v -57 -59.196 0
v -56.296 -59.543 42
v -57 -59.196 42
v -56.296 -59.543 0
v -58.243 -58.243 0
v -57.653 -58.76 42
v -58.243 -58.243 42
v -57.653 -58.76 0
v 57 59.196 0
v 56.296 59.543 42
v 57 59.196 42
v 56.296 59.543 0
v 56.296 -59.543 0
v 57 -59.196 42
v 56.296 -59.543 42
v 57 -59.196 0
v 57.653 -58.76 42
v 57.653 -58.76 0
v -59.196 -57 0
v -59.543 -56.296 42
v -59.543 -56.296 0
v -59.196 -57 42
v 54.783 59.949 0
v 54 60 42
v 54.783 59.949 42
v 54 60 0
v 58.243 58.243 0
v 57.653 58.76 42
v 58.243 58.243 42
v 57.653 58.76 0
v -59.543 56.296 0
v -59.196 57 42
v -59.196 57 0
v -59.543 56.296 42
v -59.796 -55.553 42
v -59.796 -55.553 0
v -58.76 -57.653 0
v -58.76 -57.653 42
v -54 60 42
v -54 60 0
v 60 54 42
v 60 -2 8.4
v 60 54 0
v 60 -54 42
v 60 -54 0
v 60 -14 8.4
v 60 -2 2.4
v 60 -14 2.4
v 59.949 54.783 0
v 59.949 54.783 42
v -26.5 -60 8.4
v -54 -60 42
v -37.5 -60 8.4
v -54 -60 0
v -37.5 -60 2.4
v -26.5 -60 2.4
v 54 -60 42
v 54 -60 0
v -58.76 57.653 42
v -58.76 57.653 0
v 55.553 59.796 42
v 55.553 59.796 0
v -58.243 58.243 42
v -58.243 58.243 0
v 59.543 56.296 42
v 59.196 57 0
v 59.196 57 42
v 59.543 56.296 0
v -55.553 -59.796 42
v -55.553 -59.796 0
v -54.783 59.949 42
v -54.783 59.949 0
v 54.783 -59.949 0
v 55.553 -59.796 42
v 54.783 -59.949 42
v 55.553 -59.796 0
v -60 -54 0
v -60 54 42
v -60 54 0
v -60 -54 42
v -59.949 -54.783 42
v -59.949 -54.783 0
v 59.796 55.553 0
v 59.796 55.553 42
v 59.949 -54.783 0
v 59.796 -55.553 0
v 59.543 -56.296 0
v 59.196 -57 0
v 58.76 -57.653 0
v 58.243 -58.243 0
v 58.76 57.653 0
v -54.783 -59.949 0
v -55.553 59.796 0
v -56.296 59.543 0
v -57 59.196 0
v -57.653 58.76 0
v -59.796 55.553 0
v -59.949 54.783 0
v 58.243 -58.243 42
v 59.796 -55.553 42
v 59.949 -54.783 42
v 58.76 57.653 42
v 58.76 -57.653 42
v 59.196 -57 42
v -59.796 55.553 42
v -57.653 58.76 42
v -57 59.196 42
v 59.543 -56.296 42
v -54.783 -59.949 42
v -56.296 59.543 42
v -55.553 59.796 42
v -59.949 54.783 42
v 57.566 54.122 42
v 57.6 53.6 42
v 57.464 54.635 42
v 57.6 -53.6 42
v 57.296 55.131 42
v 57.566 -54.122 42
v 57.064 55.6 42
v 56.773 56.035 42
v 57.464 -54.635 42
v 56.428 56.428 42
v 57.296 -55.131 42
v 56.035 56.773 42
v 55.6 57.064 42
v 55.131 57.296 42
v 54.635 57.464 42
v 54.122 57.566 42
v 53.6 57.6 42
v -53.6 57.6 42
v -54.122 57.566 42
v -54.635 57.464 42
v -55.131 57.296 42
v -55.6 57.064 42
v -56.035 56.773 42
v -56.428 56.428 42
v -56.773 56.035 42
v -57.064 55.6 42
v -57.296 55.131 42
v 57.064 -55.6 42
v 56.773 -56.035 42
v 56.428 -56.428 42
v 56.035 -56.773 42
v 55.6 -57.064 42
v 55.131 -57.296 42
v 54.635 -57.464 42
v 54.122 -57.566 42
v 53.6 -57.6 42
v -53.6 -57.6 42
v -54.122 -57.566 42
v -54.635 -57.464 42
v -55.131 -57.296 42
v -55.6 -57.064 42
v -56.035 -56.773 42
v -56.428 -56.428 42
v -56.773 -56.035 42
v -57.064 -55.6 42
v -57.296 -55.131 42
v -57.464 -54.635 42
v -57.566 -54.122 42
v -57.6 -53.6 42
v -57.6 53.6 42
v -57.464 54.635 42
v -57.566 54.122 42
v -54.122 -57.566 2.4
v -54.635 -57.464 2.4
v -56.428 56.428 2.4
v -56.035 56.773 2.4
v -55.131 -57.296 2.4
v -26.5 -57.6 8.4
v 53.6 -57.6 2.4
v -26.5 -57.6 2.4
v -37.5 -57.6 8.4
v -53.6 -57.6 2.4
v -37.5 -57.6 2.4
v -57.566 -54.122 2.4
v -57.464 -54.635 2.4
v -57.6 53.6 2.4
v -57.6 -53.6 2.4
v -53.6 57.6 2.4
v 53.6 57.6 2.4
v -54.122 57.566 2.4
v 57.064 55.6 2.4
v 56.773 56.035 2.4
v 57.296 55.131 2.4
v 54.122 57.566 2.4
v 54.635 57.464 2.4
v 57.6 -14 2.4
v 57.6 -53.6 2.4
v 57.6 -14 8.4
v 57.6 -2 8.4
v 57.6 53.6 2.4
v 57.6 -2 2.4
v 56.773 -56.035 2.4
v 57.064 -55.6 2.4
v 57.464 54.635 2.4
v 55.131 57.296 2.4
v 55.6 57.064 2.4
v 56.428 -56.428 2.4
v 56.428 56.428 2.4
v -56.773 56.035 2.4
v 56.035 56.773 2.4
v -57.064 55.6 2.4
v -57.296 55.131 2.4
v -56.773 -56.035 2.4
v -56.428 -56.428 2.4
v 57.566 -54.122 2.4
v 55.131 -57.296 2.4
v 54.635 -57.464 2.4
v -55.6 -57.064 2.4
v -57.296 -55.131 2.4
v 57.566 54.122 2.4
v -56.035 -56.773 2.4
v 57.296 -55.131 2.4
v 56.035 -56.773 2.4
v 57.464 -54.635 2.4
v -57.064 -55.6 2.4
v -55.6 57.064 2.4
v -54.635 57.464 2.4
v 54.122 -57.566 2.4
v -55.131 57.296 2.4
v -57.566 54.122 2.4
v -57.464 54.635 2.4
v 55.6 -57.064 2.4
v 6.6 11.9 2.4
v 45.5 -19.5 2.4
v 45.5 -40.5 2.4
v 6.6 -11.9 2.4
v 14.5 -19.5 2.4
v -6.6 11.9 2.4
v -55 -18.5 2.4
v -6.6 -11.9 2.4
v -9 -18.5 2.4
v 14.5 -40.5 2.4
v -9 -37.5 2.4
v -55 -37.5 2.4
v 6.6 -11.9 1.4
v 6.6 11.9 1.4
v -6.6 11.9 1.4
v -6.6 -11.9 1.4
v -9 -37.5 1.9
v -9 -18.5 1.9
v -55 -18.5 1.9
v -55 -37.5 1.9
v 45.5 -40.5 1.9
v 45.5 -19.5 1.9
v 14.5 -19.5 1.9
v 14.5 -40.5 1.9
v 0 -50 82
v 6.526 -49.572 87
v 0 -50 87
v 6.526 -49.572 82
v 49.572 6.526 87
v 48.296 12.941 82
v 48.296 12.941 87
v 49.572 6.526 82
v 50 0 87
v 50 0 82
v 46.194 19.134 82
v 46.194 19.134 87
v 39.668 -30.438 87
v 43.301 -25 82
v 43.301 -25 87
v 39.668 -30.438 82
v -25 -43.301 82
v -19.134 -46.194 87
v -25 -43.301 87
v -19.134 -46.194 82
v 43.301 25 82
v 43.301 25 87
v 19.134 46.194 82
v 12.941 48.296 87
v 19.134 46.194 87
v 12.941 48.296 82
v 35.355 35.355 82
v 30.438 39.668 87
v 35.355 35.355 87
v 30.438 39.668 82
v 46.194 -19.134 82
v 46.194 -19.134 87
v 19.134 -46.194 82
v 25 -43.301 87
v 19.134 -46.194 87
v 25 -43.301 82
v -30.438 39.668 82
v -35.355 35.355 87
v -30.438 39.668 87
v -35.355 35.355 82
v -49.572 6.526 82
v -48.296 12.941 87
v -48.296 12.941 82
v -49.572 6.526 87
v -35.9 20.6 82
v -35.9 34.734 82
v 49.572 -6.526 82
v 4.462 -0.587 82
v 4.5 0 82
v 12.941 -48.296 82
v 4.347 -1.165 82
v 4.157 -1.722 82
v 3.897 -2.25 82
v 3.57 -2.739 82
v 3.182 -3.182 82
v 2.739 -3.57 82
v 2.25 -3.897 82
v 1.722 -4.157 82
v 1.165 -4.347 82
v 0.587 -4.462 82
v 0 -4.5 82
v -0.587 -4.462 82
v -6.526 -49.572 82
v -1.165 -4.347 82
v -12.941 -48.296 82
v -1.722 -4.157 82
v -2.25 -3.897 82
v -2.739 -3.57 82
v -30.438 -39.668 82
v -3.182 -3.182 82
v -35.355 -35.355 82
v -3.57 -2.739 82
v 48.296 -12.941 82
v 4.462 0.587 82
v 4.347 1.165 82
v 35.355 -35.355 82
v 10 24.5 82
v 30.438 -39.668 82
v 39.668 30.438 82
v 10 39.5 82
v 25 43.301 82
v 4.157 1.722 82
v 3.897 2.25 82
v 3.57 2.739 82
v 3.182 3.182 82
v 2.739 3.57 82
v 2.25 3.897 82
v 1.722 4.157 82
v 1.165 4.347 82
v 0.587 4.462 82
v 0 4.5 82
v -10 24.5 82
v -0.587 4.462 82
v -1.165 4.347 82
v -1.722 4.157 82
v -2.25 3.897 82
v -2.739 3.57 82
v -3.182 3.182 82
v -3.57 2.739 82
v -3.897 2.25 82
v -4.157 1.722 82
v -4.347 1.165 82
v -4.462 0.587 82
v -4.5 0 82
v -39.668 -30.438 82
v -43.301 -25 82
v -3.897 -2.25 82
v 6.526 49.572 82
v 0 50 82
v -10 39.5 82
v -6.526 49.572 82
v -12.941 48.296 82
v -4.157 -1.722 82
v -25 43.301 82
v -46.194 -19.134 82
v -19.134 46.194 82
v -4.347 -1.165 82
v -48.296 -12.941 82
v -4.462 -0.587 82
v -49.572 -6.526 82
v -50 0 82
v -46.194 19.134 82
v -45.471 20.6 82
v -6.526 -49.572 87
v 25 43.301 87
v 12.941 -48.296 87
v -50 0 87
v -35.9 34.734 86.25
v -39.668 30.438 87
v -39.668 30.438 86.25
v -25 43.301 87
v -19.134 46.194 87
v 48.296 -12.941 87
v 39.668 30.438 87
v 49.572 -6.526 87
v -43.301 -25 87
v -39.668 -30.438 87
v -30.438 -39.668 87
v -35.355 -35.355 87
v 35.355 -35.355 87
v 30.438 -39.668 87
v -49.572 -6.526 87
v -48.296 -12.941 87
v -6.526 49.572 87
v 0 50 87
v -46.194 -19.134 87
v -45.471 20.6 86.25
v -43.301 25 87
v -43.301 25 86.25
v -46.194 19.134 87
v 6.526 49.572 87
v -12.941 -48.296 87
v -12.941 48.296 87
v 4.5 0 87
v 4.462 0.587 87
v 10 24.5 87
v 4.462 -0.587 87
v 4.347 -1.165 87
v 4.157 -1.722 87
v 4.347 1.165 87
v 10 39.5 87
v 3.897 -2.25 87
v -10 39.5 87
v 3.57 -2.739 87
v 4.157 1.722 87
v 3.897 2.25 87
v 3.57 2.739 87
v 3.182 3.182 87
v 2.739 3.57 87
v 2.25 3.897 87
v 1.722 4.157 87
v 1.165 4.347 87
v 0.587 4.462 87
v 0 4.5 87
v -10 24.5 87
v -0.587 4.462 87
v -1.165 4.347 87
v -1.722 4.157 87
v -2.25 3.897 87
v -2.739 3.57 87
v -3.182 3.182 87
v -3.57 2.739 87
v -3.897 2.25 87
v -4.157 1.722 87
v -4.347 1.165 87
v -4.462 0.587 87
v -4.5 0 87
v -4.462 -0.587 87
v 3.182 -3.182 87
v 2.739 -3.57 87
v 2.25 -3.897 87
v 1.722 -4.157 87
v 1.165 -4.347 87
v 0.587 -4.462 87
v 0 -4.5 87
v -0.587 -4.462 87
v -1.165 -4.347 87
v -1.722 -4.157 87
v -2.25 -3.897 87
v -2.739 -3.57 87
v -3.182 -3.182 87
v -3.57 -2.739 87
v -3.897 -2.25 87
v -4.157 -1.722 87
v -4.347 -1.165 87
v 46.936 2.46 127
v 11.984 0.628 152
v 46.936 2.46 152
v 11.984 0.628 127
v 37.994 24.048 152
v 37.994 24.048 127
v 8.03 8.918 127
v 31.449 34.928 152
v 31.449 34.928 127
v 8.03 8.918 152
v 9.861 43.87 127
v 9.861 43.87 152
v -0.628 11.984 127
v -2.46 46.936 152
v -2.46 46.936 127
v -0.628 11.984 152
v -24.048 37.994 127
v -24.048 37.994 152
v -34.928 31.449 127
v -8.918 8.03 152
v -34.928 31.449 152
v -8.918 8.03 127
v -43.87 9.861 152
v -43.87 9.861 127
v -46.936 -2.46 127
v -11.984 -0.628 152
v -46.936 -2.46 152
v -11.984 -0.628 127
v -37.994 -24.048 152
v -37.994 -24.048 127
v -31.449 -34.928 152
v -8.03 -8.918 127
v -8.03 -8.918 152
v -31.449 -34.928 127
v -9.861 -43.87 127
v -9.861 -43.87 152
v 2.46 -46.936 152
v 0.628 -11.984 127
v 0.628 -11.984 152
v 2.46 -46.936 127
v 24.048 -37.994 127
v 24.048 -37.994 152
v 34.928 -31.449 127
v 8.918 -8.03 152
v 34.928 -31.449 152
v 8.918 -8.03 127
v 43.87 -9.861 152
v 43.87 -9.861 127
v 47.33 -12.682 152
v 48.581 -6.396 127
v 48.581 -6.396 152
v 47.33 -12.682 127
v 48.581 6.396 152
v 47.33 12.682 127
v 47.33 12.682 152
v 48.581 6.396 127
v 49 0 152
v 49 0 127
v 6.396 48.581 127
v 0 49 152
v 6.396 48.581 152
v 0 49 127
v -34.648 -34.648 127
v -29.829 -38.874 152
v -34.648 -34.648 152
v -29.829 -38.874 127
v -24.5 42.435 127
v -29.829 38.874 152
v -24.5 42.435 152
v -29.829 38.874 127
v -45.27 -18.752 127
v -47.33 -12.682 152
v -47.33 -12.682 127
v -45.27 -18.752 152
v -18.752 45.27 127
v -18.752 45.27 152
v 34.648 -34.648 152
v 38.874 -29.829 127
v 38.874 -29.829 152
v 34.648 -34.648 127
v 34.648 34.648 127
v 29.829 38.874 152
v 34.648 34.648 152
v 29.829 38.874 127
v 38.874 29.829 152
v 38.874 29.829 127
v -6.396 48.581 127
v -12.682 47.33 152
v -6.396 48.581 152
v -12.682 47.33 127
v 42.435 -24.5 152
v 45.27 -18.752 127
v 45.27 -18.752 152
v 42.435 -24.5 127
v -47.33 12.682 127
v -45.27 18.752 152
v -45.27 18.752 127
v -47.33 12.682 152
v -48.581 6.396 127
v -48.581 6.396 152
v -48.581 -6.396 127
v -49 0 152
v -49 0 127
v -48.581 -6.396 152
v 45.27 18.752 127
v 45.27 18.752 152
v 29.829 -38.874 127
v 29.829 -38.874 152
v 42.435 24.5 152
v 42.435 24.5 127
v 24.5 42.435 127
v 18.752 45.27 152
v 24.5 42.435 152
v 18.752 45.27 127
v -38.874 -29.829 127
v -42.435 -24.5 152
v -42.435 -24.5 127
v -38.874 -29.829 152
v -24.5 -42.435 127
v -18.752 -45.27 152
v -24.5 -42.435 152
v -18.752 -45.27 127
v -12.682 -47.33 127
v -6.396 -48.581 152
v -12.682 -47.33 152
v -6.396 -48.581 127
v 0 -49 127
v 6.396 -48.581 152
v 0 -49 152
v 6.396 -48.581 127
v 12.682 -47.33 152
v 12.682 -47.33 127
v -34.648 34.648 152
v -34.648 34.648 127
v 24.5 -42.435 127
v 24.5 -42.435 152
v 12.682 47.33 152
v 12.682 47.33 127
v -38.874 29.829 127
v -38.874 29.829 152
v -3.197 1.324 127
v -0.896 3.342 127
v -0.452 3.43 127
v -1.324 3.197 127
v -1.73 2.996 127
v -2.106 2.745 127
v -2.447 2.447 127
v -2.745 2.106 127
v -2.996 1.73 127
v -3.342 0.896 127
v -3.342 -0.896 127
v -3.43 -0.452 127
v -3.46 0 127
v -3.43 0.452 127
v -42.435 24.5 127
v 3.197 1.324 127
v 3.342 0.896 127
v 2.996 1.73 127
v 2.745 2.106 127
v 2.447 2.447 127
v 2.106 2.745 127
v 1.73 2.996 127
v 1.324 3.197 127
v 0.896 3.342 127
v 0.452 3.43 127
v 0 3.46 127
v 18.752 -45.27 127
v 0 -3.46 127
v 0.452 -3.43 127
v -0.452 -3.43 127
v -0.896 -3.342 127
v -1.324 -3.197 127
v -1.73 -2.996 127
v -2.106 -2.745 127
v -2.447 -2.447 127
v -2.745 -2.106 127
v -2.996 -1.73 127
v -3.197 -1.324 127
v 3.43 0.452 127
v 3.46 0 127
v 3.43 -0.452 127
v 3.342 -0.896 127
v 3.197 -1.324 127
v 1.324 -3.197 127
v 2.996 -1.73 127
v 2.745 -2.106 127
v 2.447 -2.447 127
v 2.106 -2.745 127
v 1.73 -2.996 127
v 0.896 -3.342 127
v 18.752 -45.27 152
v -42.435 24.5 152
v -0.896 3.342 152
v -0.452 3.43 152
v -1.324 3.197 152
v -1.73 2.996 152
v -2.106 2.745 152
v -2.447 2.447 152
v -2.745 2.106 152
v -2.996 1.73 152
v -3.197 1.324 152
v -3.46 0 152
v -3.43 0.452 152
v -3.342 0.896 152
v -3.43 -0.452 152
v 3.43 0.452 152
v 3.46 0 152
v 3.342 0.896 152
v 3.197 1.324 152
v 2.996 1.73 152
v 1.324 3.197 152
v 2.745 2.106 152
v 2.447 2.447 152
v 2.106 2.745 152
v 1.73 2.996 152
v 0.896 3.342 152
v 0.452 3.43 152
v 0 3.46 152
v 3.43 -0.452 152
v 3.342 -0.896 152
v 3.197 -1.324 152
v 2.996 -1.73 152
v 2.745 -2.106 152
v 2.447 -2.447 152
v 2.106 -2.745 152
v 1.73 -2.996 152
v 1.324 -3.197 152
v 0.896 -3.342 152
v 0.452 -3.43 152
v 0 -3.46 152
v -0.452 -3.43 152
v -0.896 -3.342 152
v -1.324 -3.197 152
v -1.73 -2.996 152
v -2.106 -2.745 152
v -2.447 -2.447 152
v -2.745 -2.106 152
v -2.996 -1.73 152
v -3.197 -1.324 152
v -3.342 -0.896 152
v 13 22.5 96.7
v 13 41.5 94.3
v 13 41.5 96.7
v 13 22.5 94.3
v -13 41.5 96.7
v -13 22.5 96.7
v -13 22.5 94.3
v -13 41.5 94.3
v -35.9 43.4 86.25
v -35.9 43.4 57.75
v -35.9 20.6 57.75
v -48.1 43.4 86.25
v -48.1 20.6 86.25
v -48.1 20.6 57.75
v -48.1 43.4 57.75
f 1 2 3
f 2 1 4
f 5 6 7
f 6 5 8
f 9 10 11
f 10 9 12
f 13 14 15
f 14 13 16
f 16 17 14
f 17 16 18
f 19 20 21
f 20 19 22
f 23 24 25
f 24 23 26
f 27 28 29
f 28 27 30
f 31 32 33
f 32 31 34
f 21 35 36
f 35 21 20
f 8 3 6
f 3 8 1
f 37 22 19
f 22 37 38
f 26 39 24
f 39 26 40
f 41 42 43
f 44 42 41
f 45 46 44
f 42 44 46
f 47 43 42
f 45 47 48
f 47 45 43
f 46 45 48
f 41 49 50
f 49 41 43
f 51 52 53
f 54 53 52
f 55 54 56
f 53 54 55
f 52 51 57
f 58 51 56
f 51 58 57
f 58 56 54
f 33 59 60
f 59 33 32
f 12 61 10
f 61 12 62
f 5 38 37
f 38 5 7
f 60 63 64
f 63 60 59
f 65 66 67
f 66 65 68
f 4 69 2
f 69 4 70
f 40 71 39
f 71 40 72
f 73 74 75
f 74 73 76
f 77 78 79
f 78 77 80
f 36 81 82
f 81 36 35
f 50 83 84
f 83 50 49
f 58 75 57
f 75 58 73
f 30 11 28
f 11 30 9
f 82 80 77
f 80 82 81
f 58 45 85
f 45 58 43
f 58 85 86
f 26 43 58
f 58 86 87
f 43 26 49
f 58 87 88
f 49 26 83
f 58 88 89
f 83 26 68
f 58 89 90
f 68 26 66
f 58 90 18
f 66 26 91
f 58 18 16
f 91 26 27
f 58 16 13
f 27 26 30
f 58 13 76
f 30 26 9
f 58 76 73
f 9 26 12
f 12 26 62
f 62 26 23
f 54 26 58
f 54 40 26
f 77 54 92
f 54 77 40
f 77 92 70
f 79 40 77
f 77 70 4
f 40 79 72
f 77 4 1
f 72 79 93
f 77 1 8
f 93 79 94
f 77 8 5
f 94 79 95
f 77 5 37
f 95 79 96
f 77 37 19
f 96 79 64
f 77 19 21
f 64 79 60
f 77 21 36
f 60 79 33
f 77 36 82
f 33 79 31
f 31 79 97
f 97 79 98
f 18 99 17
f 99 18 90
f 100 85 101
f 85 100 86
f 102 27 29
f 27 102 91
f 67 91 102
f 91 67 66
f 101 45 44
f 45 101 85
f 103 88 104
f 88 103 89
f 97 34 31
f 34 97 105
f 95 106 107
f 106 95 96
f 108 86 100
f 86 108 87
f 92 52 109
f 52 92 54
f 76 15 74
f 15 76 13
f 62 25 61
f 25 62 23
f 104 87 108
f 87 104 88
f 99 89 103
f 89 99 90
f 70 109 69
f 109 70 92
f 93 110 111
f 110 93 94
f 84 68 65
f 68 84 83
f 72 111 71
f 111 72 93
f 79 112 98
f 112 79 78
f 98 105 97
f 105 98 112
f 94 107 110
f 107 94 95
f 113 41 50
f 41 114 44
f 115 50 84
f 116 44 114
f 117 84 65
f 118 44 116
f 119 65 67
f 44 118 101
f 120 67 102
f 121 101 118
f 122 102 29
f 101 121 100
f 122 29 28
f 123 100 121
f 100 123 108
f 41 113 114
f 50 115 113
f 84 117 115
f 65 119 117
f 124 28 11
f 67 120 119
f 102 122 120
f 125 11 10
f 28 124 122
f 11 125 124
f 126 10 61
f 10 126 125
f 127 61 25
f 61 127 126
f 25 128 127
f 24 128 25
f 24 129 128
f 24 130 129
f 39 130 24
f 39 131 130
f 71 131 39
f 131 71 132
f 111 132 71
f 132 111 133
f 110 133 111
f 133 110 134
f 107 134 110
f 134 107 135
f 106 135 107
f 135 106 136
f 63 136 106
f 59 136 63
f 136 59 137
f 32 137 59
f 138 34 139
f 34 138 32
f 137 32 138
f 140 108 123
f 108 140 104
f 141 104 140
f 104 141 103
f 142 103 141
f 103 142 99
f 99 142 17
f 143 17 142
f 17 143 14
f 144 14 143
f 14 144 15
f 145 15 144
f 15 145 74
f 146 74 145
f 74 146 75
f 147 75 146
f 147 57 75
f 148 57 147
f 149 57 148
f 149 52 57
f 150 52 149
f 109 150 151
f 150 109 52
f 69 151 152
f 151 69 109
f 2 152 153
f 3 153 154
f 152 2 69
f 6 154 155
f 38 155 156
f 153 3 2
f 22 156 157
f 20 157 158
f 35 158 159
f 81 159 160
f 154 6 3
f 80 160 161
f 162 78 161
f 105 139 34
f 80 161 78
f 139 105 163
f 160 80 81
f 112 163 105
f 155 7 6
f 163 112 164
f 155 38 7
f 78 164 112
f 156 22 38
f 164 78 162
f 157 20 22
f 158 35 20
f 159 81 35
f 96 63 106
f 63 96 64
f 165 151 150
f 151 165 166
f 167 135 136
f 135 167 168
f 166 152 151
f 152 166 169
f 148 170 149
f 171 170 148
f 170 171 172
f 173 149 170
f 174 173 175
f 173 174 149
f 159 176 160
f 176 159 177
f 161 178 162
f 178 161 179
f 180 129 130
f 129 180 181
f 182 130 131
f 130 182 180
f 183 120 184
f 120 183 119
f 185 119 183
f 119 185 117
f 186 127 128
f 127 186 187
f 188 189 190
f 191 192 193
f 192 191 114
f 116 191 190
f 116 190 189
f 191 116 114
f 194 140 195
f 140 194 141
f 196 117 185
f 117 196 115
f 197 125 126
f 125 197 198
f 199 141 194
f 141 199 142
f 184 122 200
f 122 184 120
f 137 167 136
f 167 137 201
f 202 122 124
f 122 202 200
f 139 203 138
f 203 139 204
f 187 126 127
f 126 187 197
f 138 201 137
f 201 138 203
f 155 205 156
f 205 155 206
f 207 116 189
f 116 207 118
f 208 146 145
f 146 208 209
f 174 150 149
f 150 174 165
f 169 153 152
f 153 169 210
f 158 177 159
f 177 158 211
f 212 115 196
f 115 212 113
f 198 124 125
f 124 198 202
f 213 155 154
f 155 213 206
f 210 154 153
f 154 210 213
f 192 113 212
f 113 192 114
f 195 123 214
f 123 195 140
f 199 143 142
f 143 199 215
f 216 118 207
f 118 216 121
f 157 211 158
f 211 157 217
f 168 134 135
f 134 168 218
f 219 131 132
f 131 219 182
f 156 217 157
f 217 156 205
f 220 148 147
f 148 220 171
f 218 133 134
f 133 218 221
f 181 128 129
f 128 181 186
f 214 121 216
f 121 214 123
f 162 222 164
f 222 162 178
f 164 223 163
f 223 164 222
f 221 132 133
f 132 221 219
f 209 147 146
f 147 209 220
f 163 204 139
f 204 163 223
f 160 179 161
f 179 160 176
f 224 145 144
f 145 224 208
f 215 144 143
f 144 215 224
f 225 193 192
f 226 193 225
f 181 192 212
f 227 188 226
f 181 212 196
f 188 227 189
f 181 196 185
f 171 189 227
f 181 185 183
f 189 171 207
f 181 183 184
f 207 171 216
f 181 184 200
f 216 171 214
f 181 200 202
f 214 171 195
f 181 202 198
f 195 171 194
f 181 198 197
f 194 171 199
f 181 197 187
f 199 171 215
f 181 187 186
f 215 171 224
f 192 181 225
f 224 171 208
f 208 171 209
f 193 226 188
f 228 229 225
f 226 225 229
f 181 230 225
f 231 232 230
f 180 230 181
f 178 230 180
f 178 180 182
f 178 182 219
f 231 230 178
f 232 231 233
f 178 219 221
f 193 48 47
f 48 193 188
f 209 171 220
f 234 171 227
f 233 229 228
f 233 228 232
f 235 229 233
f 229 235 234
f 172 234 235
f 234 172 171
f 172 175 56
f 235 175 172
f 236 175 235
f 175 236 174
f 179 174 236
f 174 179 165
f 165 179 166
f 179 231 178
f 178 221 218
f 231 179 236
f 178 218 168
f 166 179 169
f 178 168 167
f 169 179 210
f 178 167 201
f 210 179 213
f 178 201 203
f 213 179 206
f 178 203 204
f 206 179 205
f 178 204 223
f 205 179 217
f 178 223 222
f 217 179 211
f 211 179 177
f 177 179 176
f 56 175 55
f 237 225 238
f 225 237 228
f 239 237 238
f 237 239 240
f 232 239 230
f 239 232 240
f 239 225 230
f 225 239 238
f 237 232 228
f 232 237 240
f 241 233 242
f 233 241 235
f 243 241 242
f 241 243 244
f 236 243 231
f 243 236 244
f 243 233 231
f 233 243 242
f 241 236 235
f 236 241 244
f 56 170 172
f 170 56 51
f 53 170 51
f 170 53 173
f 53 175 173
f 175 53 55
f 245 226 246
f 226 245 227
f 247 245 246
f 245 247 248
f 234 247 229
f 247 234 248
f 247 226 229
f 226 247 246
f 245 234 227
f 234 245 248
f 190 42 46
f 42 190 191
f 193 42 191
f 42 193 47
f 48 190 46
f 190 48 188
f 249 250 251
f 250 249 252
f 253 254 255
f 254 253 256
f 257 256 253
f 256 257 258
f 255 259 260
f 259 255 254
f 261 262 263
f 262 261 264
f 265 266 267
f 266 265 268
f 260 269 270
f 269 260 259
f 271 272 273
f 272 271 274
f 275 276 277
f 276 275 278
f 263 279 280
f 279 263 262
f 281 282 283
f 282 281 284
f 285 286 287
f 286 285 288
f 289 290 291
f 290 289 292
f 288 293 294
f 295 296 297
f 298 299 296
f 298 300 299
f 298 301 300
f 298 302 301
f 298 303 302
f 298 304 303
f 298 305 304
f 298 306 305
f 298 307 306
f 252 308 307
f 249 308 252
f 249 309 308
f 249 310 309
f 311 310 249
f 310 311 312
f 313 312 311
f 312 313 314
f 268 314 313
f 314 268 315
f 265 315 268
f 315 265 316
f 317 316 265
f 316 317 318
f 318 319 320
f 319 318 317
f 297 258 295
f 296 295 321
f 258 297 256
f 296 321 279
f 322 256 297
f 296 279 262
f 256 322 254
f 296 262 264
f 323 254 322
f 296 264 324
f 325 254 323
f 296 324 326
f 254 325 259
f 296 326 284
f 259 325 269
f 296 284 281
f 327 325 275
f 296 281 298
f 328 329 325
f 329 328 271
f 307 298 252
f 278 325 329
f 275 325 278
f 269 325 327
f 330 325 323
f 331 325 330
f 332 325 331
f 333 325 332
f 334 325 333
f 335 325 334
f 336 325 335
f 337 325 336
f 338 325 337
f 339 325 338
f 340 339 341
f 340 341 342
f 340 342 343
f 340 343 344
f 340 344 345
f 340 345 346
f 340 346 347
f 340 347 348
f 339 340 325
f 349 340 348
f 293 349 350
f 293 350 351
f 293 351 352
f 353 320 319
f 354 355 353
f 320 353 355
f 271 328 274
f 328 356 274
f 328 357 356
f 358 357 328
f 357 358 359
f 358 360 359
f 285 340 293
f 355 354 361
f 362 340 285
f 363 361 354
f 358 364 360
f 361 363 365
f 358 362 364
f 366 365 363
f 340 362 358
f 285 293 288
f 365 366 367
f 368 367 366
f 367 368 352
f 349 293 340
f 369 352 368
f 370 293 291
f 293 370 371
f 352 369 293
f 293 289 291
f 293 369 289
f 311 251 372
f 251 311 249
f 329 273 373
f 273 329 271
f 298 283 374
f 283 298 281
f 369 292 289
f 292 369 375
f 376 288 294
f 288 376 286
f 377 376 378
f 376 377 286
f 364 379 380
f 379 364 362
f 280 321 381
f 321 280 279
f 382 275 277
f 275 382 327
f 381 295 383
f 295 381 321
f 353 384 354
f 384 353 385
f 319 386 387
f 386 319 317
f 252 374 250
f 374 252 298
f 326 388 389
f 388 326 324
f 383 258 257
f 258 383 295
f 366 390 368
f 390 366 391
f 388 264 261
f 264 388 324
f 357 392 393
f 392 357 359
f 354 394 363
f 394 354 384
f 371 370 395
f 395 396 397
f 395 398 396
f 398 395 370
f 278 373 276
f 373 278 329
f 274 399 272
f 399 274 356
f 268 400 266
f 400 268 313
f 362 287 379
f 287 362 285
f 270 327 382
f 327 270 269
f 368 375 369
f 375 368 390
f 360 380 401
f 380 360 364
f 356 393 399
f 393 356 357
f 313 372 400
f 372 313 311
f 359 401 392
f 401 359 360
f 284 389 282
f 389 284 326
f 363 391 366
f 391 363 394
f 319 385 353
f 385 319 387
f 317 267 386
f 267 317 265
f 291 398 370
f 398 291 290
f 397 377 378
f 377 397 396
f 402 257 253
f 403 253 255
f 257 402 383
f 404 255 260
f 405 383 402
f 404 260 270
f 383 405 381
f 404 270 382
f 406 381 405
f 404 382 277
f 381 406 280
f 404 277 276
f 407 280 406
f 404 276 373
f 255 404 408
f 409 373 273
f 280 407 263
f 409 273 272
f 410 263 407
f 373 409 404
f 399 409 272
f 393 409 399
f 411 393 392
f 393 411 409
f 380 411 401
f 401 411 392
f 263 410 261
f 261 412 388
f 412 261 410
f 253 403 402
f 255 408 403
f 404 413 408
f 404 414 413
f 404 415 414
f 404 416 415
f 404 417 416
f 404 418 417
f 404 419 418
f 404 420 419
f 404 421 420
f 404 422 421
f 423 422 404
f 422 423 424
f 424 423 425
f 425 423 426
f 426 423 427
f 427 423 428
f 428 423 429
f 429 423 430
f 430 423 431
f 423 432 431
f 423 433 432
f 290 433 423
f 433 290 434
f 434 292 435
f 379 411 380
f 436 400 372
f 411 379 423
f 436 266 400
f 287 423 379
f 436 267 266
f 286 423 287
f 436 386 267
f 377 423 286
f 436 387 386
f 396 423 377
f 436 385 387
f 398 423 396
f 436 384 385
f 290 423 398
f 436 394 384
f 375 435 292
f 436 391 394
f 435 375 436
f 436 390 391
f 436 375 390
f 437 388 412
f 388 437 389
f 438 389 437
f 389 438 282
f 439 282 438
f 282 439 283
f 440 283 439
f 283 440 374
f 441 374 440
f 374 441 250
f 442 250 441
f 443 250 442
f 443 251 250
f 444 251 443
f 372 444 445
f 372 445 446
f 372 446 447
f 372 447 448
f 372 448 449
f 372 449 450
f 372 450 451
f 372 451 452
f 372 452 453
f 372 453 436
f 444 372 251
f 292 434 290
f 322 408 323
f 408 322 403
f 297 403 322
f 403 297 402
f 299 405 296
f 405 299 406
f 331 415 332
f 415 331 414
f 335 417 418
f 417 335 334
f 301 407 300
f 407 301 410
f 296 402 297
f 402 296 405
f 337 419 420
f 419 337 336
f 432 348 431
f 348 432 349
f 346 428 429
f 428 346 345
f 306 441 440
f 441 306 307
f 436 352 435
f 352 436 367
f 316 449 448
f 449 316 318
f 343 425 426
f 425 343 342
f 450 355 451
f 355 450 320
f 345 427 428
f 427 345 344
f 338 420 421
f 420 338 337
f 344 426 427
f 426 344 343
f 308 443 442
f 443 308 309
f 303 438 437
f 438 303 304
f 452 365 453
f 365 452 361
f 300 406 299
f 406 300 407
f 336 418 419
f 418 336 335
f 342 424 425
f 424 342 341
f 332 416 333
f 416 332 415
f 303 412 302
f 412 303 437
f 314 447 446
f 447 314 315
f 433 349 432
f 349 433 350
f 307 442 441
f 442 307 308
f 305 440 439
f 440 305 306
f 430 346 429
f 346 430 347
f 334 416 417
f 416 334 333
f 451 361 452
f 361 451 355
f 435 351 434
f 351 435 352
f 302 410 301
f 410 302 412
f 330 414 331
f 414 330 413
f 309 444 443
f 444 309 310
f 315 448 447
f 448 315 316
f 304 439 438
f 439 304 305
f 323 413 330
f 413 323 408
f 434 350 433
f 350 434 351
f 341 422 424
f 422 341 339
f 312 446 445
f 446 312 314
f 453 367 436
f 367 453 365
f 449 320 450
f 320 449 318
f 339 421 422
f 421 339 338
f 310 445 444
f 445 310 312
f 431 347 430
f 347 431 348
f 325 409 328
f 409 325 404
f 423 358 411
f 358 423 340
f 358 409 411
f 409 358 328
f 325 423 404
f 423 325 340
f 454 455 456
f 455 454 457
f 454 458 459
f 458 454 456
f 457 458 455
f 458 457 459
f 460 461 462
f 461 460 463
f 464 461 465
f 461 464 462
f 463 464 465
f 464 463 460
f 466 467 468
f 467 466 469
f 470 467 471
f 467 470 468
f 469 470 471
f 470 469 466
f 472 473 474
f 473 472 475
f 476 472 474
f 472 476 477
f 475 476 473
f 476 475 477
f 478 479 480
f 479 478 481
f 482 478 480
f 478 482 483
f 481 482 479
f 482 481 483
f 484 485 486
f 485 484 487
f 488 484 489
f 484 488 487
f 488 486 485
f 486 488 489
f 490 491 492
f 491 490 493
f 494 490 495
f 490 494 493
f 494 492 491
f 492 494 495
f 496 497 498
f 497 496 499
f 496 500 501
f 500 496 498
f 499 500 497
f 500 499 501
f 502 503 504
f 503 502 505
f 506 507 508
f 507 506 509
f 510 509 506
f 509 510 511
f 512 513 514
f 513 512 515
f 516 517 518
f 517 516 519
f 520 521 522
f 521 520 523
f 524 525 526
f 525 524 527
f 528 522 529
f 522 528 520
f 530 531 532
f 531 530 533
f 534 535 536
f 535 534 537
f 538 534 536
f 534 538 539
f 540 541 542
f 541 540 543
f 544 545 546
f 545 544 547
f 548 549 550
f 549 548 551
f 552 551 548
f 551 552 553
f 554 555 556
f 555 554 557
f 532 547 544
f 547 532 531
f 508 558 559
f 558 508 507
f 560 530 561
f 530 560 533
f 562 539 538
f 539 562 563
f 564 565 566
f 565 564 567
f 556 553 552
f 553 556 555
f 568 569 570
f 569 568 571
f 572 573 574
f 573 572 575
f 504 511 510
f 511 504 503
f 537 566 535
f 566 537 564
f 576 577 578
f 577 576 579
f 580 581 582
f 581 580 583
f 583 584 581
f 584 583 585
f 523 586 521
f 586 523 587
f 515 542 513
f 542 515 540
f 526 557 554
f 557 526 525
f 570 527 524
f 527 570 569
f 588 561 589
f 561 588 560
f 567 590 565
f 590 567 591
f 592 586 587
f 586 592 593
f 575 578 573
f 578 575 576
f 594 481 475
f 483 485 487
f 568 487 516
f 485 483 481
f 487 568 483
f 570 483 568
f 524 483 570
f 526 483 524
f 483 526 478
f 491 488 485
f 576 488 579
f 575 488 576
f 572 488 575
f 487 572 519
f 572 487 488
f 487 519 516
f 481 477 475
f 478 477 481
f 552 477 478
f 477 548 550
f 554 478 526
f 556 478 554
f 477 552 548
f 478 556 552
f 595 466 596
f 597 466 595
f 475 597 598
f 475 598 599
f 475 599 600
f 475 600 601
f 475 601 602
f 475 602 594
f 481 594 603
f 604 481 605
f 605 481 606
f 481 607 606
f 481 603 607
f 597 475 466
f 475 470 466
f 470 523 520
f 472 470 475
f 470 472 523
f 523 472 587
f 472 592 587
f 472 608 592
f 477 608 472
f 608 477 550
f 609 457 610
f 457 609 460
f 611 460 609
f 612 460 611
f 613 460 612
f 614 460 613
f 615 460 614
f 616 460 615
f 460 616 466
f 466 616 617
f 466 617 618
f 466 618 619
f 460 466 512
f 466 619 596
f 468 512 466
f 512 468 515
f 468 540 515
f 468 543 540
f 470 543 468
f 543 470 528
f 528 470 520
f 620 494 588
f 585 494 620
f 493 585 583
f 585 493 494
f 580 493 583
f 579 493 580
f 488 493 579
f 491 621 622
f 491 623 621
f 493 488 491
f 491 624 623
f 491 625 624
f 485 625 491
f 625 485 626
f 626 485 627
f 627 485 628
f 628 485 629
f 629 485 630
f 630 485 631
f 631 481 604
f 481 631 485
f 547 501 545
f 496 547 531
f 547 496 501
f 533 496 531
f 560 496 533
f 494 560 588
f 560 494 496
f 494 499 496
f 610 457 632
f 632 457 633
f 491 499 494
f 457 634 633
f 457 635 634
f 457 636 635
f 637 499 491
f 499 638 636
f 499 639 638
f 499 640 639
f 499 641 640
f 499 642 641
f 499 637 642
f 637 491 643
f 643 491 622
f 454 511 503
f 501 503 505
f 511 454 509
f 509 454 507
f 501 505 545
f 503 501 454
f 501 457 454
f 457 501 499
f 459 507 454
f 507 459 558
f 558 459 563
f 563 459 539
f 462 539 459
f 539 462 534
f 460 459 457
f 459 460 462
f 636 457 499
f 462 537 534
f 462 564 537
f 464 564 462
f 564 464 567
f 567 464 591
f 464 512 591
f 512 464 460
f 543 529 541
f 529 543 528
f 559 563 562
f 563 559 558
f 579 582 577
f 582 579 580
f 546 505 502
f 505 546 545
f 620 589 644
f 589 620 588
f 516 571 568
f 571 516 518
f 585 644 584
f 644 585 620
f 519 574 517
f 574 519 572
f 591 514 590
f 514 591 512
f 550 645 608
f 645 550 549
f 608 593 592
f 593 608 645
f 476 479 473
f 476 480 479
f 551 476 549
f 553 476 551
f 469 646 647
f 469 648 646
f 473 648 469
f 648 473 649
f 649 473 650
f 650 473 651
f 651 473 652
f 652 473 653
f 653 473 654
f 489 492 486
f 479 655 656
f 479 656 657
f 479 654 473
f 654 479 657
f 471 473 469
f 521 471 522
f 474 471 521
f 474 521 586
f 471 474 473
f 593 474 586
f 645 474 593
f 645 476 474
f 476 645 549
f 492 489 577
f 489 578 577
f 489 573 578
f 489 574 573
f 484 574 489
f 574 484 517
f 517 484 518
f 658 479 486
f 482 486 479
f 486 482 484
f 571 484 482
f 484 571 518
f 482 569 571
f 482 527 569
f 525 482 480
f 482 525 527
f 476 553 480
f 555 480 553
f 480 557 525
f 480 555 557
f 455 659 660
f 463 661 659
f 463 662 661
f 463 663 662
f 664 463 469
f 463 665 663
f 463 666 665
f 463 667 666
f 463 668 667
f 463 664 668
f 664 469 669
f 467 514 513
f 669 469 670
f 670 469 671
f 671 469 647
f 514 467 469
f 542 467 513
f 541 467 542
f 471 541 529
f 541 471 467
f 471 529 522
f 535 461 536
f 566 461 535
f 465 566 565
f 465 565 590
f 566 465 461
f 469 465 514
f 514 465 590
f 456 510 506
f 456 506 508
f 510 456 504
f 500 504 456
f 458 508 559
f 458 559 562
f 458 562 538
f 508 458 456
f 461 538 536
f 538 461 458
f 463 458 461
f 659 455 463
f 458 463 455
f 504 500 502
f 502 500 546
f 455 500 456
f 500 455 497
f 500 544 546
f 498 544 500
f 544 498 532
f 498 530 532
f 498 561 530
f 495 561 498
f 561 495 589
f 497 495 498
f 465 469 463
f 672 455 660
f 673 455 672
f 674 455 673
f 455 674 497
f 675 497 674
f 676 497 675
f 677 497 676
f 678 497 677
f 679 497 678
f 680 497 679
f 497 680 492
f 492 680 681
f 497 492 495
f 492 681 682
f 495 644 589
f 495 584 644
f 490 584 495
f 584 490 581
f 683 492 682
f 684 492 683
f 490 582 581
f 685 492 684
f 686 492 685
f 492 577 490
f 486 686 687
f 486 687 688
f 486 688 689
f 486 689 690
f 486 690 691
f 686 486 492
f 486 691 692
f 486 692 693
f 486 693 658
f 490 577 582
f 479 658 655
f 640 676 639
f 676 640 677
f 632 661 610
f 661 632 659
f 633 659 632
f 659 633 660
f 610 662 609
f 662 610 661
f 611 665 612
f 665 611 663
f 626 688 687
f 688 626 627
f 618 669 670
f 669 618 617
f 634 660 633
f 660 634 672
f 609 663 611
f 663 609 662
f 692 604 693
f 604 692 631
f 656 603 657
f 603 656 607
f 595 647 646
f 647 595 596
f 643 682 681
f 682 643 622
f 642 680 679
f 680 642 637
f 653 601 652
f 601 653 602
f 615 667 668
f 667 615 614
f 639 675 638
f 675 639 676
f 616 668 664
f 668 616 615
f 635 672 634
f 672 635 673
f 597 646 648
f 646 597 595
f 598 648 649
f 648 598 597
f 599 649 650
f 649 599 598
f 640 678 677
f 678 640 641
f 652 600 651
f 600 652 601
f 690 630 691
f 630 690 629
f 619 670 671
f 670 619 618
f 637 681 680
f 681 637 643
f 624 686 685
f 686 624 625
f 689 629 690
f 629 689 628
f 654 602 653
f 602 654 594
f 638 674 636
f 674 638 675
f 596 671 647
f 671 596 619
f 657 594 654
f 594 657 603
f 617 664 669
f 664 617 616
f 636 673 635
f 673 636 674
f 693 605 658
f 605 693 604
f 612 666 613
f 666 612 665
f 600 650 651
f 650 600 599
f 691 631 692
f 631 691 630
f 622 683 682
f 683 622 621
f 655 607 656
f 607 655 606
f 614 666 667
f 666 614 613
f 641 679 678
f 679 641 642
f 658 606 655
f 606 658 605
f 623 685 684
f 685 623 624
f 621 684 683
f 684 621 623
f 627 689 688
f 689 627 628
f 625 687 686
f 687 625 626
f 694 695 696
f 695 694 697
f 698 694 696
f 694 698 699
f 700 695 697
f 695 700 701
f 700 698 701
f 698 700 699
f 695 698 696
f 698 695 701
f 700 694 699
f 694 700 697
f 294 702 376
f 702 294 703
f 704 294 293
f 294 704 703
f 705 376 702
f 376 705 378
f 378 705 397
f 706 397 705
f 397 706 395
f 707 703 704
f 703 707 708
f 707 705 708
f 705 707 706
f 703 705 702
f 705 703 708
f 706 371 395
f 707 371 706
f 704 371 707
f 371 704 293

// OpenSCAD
// file: parameters.scad
// Shared parametric dimensions — Automated Pill Dispenser
// Include from part files in this folder: include <parameters.scad>;

// ----- Global print / fit -----
layer_h         = 0.2;
nozzle_d        = 0.4;
wall            = 2.4;          // ~6 perimeters @ 0.4 mm
clearance_slip  = 0.30;         // PLA slip fit
clearance_press = 0.08;         // light press fit (servo horn hub)

// ----- Arduino Nano 33 BLE -----
nano_l = 45.0;
nano_w = 18.0;
nano_h = 7.0;
nano_usb_w = 9.0;
nano_usb_h = 4.0;

// ----- MG90S servo body -----
servo_l = 22.8;
servo_w = 12.2;
servo_h = 28.5;
servo_tab_l = 32.2;             // flange tip-to-tip (approx)
servo_tab_t = 2.5;
servo_horn_od = 7.0;            // round horn boss OD (press-fit target)
servo_shaft_clear_d = 9.0;      // plate pass-through

// ----- LiPo + TP4056 -----
lipo_l = 30.0;
lipo_w = 20.0;
lipo_h = 6.0;
tp4056_l = 26.0;
tp4056_w = 17.0;
tp4056_h = 5.0;
tp4056_usbc_w = 9.5;
tp4056_usbc_h = 4.0;

// ----- Part A main enclosure -----
base_outer_xy = 120.0;
base_outer_h  = 42.0;
chute_angle   = 45.0;
chute_w       = 22.0;
chute_len     = 40.0;

// ----- Part B base plate -----
base_plate_dia = 100.0;
base_plate_h   = 5.0;
drop_w         = 20.0;
drop_d         = 15.0;
drop_r_offset  = 32.0;          // radial distance of drop-hole center from axis

// ----- Part C carousel -----
car_dia     = 98.0;
car_h       = 25.0;
car_pockets = 8;
car_wall    = 2.0;
car_hub_od  = 18.0;
car_hub_id  = servo_horn_od - clearance_press;

// ----- Part D latch gate -----
gate_travel   = 22.0;
gate_thickness = 2.4;
gate_w        = drop_w + 6.0;
gate_l        = drop_d + gate_travel + 8.0;
// main file
// Assembly preview — explore housing, carousel, plate, and latch together.
// Open in OpenSCAD and press F5. Toggle EXPLODED below.
// Do NOT print this file — export STLs from part_a / part_b / part_c / part_d instead.

include <parameters.scad>;

EXPLODED = true;
ez = EXPLODED ? 40 : 0;

$fn = 48;

// ----- Simplified inlined geometry for assembly view only -----

module rounded_box(x, y, z, r) {
    hull() for (ix = [-1, 1], iy = [-1, 1])
        translate([ix * (x / 2 - r), iy * (y / 2 - r), 0])
            cylinder(h = z, r = r, center = true);
}

module preview_housing() {
    color("SteelBlue", 0.85)
    difference() {
        translate([0, 0, base_outer_h / 2])
            rounded_box(base_outer_xy, base_outer_xy, base_outer_h, 6);
        translate([0, 0, base_outer_h / 2 + wall])
            rounded_box(base_outer_xy - 2 * wall, base_outer_xy - 2 * wall, base_outer_h, 4);
        translate([0, 0, servo_h / 2 + wall])
            cube([servo_w + 1, servo_l + 1, servo_h + 2], center = true);
        translate([-32, -28, wall + nano_h / 2])
            cube([nano_l + 1, nano_w + 1, nano_h + 1], center = true);
        translate([-32, -base_outer_xy / 2, wall + 3])
            cube([11, 20, 6], center = true);
        translate([30, -30, wall + lipo_h / 2])
            cube([lipo_l + 1, lipo_w + 1, lipo_h + 1], center = true);
        translate([base_outer_xy / 2, -8, wall + 3])
            cube([20, 12, 6], center = true);
        // chute hint
        hull() {
            translate([0, drop_r_offset, base_outer_h - 6]) cube([chute_w, 2, 8], center = true);
            translate([0, base_outer_xy / 2 - 6, 10]) rotate([45, 0, 0]) cube([chute_w, 2, 8], center = true);
        }
        translate([0, 0, base_outer_h - base_plate_h / 2])
            cylinder(h = base_plate_h + 0.5, d = base_plate_dia + 0.6, center = true);
    }
}

module preview_plate() {
    color("Orange", 0.9)
    translate([0, 0, base_outer_h + ez])
    difference() {
        cylinder(h = base_plate_h, d = base_plate_dia);
        translate([0, 0, -0.1]) cylinder(h = base_plate_h + 0.2, d = servo_shaft_clear_d);
        translate([0, drop_r_offset, base_plate_h / 2])
            cube([drop_w, drop_d, base_plate_h + 2], center = true);
    }
}

module preview_carousel() {
    color("SeaGreen", 0.92)
    translate([0, 0, base_outer_h + base_plate_h + ez * 2]) {
        difference() {
            cylinder(h = car_h, d = car_dia);
            for (i = [0 : car_pockets - 1]) {
                rotate([0, 0, i * 360 / car_pockets + 3])
                    translate([car_hub_od / 2 + 3, 0, -0.1])
                        linear_extrude(height = car_h + 0.2)
                            polygon([
                                [0, 0],
                                [car_dia / 2 - car_wall - car_hub_od / 2 - 3, 0],
                                [(car_dia / 2 - car_wall - car_hub_od / 2 - 3) * cos(360 / car_pockets - 6),
                                 (car_dia / 2 - car_wall - car_hub_od / 2 - 3) * sin(360 / car_pockets - 6)]
                            ]);
            }
            translate([0, 0, -0.1]) cylinder(h = car_h + 0.2, d = car_hub_id);
        }
    }
}

module preview_latch() {
    color("Crimson", 0.95)
    translate([0, drop_r_offset, base_outer_h + base_plate_h + 0.5 + ez * 1.2])
        cube([gate_w, drop_d + 4, gate_thickness], center = true);
    // latch servo body hint on side
    color("IndianRed", 0.8)
    translate([-42, drop_r_offset, base_outer_h - 10 + ez])
        cube([servo_w, servo_l, servo_h], center = true);
}

module preview_labels() {
    // OpenSCAD has no native text dependency guarantee across builds; skip 3D text.
}

preview_housing();
preview_plate();
preview_carousel();
preview_latch();

echo("====================================================");
echo("ASSEMBLY PREVIEW");
echo(EXPLODED ? "Mode: EXPLODED (set EXPLODED=false to seat parts)" : "Mode: SEATED");
echo("Parts: Blue=Housing A | Orange=Plate B | Green=Carousel C | Red=Latch D");
echo("Export printable STLs from part_a/b/c/d_*.scad (F6 then Export STL)");
echo("====================================================");
